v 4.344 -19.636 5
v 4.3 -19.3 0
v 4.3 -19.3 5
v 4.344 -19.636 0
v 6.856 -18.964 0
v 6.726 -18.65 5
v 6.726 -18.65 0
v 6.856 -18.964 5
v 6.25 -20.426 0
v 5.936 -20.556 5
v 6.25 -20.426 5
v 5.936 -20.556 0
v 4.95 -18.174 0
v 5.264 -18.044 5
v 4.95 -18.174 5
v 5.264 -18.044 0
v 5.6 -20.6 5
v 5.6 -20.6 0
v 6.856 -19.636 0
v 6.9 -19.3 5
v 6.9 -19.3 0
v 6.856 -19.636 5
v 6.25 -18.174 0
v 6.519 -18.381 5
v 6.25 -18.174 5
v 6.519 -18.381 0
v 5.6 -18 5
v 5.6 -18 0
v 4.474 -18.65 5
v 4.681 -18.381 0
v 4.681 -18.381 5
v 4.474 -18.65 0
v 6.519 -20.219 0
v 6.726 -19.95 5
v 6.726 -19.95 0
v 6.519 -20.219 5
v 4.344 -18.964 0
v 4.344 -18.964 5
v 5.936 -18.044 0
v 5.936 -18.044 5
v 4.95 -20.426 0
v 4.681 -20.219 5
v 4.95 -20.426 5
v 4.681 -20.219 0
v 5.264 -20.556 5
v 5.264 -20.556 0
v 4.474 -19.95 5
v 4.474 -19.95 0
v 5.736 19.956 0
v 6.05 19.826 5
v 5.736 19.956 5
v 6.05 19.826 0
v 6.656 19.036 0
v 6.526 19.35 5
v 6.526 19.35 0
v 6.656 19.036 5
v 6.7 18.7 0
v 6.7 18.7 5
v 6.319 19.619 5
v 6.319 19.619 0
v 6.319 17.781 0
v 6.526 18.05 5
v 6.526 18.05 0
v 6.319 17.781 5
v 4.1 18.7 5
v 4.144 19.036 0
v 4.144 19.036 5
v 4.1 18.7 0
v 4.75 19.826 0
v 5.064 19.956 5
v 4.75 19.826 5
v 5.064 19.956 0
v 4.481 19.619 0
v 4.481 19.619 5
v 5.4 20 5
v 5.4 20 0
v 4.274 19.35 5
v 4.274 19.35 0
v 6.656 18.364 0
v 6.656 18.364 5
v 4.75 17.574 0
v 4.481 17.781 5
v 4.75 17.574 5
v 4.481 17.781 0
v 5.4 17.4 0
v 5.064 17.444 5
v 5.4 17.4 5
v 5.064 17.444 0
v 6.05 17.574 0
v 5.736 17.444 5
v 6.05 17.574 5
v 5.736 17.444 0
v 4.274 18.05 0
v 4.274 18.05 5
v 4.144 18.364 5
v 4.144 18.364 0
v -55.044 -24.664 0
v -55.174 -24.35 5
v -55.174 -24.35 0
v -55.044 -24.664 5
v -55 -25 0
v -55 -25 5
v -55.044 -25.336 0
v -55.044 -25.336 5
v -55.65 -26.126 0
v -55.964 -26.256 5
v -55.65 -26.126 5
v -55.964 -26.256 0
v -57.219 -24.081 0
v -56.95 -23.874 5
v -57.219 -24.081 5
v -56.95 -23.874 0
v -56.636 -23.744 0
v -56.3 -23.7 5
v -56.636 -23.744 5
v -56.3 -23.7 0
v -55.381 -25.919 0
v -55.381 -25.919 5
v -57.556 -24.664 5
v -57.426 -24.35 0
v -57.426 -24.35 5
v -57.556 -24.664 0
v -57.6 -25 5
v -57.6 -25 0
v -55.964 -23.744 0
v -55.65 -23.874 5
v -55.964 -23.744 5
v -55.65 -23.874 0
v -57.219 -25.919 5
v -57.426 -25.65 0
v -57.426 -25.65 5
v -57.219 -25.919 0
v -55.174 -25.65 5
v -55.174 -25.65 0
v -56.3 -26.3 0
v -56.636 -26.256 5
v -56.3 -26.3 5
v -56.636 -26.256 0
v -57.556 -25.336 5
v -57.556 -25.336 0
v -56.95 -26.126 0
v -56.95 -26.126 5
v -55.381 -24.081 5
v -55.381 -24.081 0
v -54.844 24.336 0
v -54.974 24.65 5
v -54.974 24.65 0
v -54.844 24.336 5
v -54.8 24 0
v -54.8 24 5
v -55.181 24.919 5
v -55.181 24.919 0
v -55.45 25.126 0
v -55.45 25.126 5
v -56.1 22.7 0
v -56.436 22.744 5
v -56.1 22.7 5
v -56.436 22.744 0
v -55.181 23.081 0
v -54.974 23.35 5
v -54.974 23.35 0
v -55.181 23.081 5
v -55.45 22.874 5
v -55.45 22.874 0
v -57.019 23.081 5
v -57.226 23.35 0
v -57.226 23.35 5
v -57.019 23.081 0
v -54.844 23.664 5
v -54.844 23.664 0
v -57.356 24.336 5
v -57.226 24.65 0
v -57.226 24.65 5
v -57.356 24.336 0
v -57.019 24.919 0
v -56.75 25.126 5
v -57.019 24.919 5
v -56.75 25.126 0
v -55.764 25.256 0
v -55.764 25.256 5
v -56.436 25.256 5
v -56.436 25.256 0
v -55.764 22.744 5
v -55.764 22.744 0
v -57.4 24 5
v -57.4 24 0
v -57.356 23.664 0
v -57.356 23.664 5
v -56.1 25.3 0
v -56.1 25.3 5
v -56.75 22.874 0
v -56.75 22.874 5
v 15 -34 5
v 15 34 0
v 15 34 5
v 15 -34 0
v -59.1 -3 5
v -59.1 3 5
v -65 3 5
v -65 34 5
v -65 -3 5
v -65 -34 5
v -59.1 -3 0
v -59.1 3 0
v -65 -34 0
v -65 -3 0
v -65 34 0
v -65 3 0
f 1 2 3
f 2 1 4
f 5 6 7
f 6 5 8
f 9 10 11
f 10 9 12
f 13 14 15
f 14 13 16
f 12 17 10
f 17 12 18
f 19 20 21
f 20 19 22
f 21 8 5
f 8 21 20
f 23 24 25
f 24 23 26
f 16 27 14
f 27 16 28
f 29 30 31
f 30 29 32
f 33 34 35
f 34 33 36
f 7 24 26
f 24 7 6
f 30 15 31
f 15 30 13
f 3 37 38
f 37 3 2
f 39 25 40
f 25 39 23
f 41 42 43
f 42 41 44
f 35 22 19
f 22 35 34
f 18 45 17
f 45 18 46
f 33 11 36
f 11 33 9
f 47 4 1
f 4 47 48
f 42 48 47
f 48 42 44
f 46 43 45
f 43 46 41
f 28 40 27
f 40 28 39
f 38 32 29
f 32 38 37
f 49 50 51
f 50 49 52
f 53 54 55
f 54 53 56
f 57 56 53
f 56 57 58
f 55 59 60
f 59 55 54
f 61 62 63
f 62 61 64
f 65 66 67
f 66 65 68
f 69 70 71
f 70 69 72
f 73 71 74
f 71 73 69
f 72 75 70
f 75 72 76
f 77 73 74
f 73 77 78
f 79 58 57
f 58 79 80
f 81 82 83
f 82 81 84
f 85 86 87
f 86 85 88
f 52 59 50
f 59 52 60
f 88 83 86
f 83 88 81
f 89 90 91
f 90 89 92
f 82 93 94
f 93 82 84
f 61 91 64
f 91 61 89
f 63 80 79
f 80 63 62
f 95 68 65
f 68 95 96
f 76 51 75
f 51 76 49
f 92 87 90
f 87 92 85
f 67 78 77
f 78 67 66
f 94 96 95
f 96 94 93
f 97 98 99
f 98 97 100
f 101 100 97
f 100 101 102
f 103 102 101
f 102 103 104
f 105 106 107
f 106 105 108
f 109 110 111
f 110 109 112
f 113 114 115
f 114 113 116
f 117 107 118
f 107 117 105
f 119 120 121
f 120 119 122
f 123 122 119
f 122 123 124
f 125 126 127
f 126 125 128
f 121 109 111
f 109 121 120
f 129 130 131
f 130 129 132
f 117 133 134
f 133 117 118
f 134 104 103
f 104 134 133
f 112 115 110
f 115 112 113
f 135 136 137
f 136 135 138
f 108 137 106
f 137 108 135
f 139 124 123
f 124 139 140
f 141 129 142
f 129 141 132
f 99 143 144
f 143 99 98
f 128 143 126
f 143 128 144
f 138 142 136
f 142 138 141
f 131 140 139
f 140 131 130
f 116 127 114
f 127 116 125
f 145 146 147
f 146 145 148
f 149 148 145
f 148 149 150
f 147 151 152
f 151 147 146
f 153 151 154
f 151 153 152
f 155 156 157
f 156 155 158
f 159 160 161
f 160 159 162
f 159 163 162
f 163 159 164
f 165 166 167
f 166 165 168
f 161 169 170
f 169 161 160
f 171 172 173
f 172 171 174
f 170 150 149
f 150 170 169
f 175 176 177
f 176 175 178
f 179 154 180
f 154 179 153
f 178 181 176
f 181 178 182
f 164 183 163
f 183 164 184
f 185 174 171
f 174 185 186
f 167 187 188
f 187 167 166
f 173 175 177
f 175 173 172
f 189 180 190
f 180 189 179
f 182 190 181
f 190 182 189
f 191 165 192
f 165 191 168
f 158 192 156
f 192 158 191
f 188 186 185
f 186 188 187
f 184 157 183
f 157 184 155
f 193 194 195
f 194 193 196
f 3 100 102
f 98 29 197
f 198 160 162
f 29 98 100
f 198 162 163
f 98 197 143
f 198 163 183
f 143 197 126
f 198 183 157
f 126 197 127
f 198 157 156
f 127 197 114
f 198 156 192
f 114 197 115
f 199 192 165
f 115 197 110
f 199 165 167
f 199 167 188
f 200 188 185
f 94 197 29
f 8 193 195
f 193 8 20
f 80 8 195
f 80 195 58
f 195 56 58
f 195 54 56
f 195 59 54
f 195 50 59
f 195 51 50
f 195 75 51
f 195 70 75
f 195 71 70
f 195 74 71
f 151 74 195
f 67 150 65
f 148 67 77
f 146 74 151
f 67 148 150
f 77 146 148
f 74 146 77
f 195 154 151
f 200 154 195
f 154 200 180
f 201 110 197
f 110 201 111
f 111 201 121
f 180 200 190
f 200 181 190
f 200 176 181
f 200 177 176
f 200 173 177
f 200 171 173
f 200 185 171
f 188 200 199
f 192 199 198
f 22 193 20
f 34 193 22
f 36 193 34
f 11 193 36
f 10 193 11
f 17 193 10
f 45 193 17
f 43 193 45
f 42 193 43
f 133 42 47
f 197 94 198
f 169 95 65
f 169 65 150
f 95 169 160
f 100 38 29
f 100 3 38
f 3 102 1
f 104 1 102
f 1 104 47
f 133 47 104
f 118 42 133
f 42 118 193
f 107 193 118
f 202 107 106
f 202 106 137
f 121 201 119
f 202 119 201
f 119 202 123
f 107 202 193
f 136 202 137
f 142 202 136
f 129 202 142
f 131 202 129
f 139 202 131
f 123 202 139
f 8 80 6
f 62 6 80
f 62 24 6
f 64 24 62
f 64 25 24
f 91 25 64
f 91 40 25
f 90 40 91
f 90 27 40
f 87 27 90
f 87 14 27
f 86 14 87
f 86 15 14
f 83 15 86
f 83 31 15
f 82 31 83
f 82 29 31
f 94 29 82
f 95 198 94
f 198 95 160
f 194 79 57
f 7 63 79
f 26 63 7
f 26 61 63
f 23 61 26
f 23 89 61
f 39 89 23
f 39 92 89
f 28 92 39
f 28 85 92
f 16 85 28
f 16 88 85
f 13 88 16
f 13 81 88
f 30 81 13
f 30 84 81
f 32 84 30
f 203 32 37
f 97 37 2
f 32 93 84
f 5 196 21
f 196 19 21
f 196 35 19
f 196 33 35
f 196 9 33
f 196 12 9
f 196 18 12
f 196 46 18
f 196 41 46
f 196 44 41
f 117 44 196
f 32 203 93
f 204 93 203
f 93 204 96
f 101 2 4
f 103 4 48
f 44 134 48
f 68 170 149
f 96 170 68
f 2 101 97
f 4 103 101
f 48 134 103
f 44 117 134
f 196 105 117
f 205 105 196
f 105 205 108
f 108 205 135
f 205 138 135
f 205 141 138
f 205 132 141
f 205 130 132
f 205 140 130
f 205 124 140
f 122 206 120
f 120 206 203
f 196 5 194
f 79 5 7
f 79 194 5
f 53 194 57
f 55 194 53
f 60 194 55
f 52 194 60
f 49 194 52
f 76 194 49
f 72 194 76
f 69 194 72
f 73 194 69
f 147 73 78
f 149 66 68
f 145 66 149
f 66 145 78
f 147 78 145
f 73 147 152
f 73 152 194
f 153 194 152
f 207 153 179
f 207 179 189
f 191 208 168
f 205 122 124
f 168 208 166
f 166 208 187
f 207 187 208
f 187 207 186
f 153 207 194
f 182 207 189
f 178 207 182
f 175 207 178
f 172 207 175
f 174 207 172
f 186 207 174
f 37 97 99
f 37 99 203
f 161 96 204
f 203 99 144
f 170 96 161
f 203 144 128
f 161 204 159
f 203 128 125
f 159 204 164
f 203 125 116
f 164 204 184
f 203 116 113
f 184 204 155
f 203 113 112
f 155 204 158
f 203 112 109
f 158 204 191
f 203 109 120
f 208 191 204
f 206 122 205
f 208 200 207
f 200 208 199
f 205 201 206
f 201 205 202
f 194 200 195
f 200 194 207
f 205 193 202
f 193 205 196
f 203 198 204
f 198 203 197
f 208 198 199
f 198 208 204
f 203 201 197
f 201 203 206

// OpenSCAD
// ============================================================
// Mega base-plate fit coupon (2026-10-04) — a small, fast print to check
// the 4 M3 self-tap hole positions in dial_unit_housing.scad's
// mega_base_hole_pts against the REAL clear plastic base plate that ships
// with the Arduino Mega 2560, BEFORE printing the whole electronics deck
// with the base-plate mount (now the only Mega mounting).
//
// Why a coupon: those 4 positions were not read off a drawing (none was
// found) — they were measured from a photo of the real base with a ruler
// beside it, good to about +/-0.4mm (see mega_base_hole_pts' comment).
// The base's own holes are ~3.1mm and an M3 screw is 3.0mm, so a hole
// that's 0.4mm off will bind. Better to find out on a 4mm plate than on
// the deck.
//
// How to use: print this (PETG, same material as the deck), lay the base
// plate on it so the two end-flange holes and the two mid-plate U-rim
// holes line up with the coupon's holes (the coupon is in the same
// orientation as the deck: jack/USB end of the Mega toward -X, i.e. the
// "FLANGE" end marked below), and drive 4 M3 screws (M3x6 or x8) through
// the base into the coupon by hand. Report which holes are off, and by
// roughly how much and in which direction; the numbers in
// mega_base_hole_pts get corrected and the deck re-rendered.
//
// KEEP IN SYNC with dial_unit_housing.scad's mega_base_hole_pts (copied,
// not included, same convention as standoff_screw_fit_test.scad — pulling
// in the whole housing file would render the whole assembly too).
// ============================================================

include <common_mounts.scad>

coupon_thickness = 5;   // mm, same as the deck's deck_thickness (thread engagement)
pilot_d          = set_screw_pilot_d; // 2.6mm, same M3 self-tap pilot as the deck

// Deck frame, UNROTATED (the deck rotates these by mega_rotation = 30deg;
// the coupon doesn't need to).
hole_pts = [
    [   5.6, -19.3],  // U-rim hole, mid-plate
    [   5.4,  18.7],  // U-rim hole, mid-plate
    [ -56.3, -25.0],  // end-flange hole
    [ -56.1,  24.0]   // end-flange hole
];

module coupon() {
    difference() {
        // rounded rectangle around the 4 holes, ~9mm of material past each
        translate([-65, -34, 0])
            cube([80, 68, coupon_thickness]);
        for (p = hole_pts)
            translate([p[0], p[1], -eps_c])
                cylinder(d = pilot_d, h = coupon_thickness + 2*eps_c, $fn = 24);
        // orientation mark: a small notch on the flange (-X) edge, so the
        // coupon can't be laid on the base the wrong way round
        translate([-65 - eps_c, -3, -eps_c])
            cube([6, 6, coupon_thickness + 2*eps_c]);
    }
}

coupon();
